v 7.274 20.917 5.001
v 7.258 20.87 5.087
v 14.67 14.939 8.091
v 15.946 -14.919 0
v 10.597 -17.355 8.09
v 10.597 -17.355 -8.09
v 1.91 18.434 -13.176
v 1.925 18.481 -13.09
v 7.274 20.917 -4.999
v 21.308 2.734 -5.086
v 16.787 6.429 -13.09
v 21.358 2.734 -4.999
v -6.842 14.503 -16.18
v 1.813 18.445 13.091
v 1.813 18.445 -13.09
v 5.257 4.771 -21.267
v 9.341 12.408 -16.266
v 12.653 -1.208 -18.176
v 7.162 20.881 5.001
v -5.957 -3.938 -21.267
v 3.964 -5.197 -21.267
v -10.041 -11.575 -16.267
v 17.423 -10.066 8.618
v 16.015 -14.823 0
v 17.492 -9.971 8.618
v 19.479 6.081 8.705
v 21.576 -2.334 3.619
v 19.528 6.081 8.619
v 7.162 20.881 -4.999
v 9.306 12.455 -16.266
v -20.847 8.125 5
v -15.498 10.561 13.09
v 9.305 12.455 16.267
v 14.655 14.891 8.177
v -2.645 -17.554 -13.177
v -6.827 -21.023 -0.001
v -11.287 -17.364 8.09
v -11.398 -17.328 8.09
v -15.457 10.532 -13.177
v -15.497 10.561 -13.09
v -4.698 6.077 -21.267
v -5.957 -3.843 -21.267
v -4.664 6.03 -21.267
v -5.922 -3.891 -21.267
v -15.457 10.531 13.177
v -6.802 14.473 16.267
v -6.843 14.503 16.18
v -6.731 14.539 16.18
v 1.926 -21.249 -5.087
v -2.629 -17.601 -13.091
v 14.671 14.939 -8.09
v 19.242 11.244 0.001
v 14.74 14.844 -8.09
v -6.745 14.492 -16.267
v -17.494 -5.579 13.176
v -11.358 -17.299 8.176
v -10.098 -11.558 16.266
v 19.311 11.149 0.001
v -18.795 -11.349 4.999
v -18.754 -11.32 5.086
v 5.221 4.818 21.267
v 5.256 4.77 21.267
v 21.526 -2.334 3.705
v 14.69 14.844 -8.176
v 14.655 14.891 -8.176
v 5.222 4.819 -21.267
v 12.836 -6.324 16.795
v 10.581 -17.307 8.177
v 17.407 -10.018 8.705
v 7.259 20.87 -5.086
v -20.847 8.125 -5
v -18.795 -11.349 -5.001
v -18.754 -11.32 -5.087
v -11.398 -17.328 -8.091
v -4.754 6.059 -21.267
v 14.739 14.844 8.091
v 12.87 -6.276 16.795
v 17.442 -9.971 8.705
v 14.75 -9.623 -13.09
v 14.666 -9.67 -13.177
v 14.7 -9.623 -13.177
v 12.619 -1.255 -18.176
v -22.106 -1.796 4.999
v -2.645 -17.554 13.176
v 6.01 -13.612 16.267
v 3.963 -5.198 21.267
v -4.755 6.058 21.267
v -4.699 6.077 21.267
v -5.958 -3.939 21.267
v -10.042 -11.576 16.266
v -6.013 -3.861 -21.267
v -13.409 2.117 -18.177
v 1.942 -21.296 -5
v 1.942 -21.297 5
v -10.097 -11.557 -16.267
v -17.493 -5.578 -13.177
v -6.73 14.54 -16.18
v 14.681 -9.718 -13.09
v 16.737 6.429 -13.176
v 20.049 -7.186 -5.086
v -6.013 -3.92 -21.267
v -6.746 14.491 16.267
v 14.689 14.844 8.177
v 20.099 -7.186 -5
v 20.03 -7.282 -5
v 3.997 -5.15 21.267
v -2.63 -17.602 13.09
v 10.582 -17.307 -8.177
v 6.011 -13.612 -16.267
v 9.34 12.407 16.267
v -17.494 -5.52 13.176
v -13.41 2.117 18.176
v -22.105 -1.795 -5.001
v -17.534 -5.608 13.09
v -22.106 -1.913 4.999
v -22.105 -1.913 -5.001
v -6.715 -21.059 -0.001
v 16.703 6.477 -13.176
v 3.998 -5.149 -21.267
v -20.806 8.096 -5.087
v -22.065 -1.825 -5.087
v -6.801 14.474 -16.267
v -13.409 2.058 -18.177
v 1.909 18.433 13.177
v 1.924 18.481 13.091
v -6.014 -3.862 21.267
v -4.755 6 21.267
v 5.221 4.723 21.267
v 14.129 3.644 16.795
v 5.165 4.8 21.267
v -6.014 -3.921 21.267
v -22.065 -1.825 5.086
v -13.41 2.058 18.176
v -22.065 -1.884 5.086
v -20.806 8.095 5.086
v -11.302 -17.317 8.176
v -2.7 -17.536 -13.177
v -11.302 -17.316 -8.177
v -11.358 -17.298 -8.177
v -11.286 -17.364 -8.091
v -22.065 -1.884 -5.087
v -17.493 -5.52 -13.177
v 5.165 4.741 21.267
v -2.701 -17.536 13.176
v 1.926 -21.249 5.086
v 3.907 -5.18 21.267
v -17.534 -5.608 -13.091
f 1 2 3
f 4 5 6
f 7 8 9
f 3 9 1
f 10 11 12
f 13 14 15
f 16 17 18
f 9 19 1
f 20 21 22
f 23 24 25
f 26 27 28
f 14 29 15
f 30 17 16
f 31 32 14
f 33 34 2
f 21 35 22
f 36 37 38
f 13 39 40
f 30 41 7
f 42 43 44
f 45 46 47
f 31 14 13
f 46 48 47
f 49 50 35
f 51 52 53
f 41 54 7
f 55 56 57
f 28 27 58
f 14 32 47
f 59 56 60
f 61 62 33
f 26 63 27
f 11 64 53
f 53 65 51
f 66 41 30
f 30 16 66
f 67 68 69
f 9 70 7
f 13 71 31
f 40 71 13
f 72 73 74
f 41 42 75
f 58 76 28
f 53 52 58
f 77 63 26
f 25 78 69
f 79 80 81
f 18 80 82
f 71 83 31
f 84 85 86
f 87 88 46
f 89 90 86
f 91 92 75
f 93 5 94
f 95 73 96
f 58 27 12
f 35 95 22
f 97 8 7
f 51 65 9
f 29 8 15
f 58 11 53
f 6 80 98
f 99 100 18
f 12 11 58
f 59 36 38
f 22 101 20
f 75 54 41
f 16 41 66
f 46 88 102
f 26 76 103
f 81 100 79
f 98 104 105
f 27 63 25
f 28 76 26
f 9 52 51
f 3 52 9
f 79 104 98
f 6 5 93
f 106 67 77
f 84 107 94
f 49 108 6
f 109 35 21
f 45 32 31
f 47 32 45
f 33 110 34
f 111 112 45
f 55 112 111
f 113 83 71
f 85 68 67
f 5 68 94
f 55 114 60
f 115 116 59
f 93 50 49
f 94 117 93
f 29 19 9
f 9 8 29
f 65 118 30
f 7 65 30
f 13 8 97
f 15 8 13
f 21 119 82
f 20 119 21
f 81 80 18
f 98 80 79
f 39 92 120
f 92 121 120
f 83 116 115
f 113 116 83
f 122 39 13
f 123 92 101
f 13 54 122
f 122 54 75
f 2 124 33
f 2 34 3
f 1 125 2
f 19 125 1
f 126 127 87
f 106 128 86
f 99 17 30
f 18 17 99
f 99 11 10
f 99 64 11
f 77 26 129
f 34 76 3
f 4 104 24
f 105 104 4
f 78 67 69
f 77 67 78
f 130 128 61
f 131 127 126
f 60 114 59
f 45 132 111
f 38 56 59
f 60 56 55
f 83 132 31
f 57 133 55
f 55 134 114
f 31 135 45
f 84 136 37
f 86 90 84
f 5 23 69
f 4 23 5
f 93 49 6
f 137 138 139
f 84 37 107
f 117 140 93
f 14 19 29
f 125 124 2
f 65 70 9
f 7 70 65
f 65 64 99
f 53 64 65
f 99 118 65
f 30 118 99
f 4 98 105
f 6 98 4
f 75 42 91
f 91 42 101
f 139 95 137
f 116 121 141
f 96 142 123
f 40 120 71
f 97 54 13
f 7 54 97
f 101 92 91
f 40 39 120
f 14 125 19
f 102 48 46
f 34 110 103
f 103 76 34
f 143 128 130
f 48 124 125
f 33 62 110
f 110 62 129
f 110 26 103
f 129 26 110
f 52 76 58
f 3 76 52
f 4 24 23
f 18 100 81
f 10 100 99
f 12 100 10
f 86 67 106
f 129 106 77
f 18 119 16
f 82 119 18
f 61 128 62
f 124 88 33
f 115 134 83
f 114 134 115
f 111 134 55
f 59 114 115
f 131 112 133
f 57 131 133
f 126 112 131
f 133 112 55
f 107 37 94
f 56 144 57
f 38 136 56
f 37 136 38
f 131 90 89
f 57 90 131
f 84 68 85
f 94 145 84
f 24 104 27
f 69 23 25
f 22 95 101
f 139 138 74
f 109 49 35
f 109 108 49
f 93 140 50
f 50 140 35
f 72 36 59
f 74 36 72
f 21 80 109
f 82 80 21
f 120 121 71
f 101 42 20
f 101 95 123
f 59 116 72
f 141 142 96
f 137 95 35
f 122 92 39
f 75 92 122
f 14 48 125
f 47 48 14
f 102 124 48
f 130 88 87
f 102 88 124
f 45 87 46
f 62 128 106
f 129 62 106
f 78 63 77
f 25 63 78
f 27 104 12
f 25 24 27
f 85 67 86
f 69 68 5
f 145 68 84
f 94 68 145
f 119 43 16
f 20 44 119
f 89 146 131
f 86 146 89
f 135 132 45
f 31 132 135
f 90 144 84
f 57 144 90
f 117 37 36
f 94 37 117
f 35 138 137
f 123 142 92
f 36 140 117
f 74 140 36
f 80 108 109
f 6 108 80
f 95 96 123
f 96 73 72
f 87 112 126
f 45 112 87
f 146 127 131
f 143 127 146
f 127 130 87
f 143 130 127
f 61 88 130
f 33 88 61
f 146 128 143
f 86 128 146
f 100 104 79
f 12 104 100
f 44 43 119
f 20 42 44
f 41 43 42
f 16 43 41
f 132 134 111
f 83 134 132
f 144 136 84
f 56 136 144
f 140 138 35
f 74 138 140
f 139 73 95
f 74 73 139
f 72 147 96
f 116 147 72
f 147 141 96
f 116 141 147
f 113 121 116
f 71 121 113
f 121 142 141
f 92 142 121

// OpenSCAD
// Auto-generated OpenSCAD file

    inner_points = 10*[[-0.6761707289295088, 1.4443912429777448, 1.6180428150467039], [1.2603258031723903, -0.12076505073214727, -1.8089878045154844], [-0.4714605992542724, 0.6029023975518815, 2.1180331007845328], [1.465035932847627, -0.9622538961580105, -1.3089975187776557], [-1.541683511369511, 1.050210284169558, 1.3089975187776557], [0.3948130207323881, -0.514946009540334, -2.1180331007845328], [-1.3369733816942744, 0.20872143874369475, 1.8089878045154844], [0.5995231504076245, -1.3564348549661973, -1.6180428150467039], [1.463934226922532, 1.4843529255560477, 0.8090793922871596], [1.921079046691184, 1.1148696448288868, 6.720509726276802e-05], [1.2820322182132897, -0.6276002421239685, 1.6708412238007613], [1.7391770379819418, -0.9970835228511294, 0.8618290366108644], [-2.202436754888304, -0.18542441139147592, -0.5000574908350913], [-1.7452919351196523, -0.5549076921186369, -1.3090696780249882], [-1.1317568977713777, -1.7269135363970753, 0.8089588950643893], [-0.674612078002726, -2.0963968171242366, -5.329212550742035e-05], [0.18942199934983583, 1.838629008812172, -1.308979864697917], [0.5994432045682823, -1.3564916619924376, 1.6180251609669651], [1.0565880243369343, -1.7259749427195985, 0.8090129737770685], [-0.6760907830901666, 1.4444480500039851, -1.6180251609669651], [-0.26606957787172014, -1.7506726208006245, 1.308979864697917], [0.1910752418969318, -2.1201559015277853, 0.49996767750802007], [0.5206899199254378, 0.4770998592723383, -2.118012576336173], [-0.5973374984473221, -0.3891434712607908, 2.118012576336173], [1.0566279972566053, -1.7259465392064783, -0.8090210142297662], [0.9289932050541309, 1.2407181409580579, 1.6180788946703704], [2.1258138809894067, 0.2733983537395316, -0.49994250870567225], [-2.202461459511291, -0.1854419657279841, 0.49994250870567225], [-1.005640783576015, -1.1527617529465104, -1.6180788946703704], [0.7243230482985655, 2.082235389897041, -0.4999453790742929], [1.9428501392747406, 0.6080804112866934, 0.8618622458659101], [-1.5416188338268535, 1.050256242019186, -1.3090364687699425], [-1.871368076395344, -1.1290310720560819, -0.500065876297063], [0.18935732180717835, 1.8385830509625434, 1.3090541228496813], [1.6687090341404256, 0.6429100379798126, -1.3089643095226098], [0.5205852694631093, 0.47702549790959015, 2.1180553992182594], [1.9999369817963566, -0.7186475150731406, -0.4999630331540315], [-2.0765845603182407, 0.8066039030846881, 0.4999630331540315], [-0.5972328479849937, -0.38906910989804266, -2.1180553992182594], [-1.7453566126623097, -0.5549536499682651, 1.3089643095226098], [-0.26600490032906265, -1.750626662950996, -1.3090541228496813], [0.7242983436755794, 2.082217835560533, 0.5000546204664706], [1.463974199842203, 1.4843813290691679, -0.8089545957196747], [1.4079091174063396, 0.3644456266887037, 1.6708617482491208], [2.1475849735729633, -0.2333908798026617, 0.3618525320629751], [-2.0765598556952543, 0.8066214574211964, -0.5000369663867321], [-1.336883999528631, 0.20878495092983085, -1.8090461825728774], [-1.8713927810183302, -1.1290486263925898, 0.4999341232437007], [-1.1317169248517065, -1.7268851328839554, -0.8090750929424451], [0.9290731508934732, 1.2407749479842982, -1.6179890813432987], [0.39470837027005956, -0.5150203709030822, 2.1180348747699], [1.591529046205335, -1.4823401581216085, 1.3471393857822367e-05], [-0.47135594879194387, 0.6029767589146297, -2.1180348747699], [-1.0057207294153574, -1.1528185599727507, 1.6179890813432987], [0.19109994651991802, -2.120138347191277, -0.5000323220327436]];

    outer_points = 10*[[0.02552547509395009, 2.1187272483769695, -0.7045645993136277], [-1.3615932646610294, -1.6727578892770014, 0.5779384076102413], [0.6827172728374509, 1.6727578892770014, -1.3121913529400864], [-0.7044014669175285, -2.1187272483769695, -0.029688346016217504], [0.7044014669175285, 2.1187272483769695, 0.029688346016217504], [-0.6827172728374509, -1.6727578892770014, 1.3121913529400864], [1.3615932646610294, 1.6727578892770014, -0.5779384076102413], [-0.02552547509395009, -2.1187272483769695, 0.7045645993136277], [-1.6027511659773777, 0.6705087936332265, -1.4027382632260594], [-1.9302054814233927, -0.22453943453325823, -1.099980372244143], [0.315133473353602, -0.29761058586558886, -2.1904763889740115], [-0.012320842092413131, -1.1926588140320735, -1.8877184979920947], [1.273013683679892, 0.6705087936332265, 1.7076071258706018], [0.945559368233877, -0.22453943453325823, 2.0103650168525182], [2.2084197579852707, -0.29761058586558886, -0.1427518448945897], [1.8809654425392557, -1.1926588140320735, 0.16000604608732683], [-1.8951197183831776, 0.4970541464314976, 1.0712265894806337], [1.2162437265595991, -0.4970541464314976, -1.8054795348104788], [0.8887894111135841, -1.3921023745979824, -1.5027216438285624], [-1.2162437265595991, 0.4970541464314976, 1.8054795348104788], [1.8951197183831776, -0.4970541464314976, -1.0712265894806337], [1.5676654029371626, -1.3921023745979824, -0.7684686984987172], [-1.4526456533333216, -1.0353759855059943, 1.3430879167013183], [1.4526456533333216, 1.0353759855059943, -1.3430879167013183], [0.26790481028680946, -2.2029389255707184, -0.24769957676650906], [-0.7994549424817525, 1.1716333414551139, -1.7245912807479955], [-1.6567414700822498, -1.1716333414551139, -0.9319608317951029], [1.6567414700822498, 1.1716333414551139, 0.9319608317951029], [0.7994549424817525, -1.1716333414551139, 1.7245912807479955], [-2.077531341052028, 0.8067661495823462, 0.13805753994051662], [-1.258091130637894, -0.16135322991646922, -1.8377268076908435], [-0.3002109203116041, 0.8067661495823462, 2.06035670715377], [1.7336395829106201, -0.16135322991646922, 1.3980439582719861], [-0.8905073311540451, 1.809015245226121, -0.9594417716569185], [-1.9501717554630091, -1.0874216642613652, 0.020303344285033886], [0.1728513347225853, 1.0874216642613652, -1.9426025114982872], [-0.8868130895863787, -1.809015245226121, -0.9628573955563348], [0.8868130895863787, 1.809015245226121, 0.9628573955563348], [-0.1728513347225853, -1.0874216642613652, 1.9426025114982872], [1.9501717554630091, 1.0874216642613652, -0.020303344285033886], [0.8905073311540451, -1.809015245226121, 0.9594417716569185], [-1.6938035546496701, 1.3078906974042335, -0.6375887541349824], [-2.2236357668041524, -0.14032775733950953, -0.1477161961640061], [-0.454794907142269, 0.33977131790541826, -2.15957982521278], [-0.9846271192967511, -1.1084471368383249, -1.6697072672418034], [0.503085303184021, 1.3078906974042335, 1.7385036896318335], [-0.02674690897046106, -0.14032775733950953, 2.22837624760281], [2.117367369312978, 0.33977131790541826, 0.6223976641964872], [1.5875351571584961, -1.1084471368383249, 1.1122702221674634], [-2.041224144135302, -0.4500397604903581, 0.7854528533761111], [0.9427797152184564, 0.4500397604903581, -1.9734990752595192], [0.0854931876179591, -1.8932269224198697, -1.1808686263066264], [-0.9427797152184564, -0.4500397604903581, 1.9734990752595192], [2.041224144135302, 0.4500397604903581, -0.7854528533761111], [1.1839376165348048, -1.8932269224198697, 0.00717759557678177]];

    // Convex hull for inner set (I)
    module inner_hull() {
        hull() {
            for (p = inner_points) {
                translate(p) sphere(r=0.1);
            }
        }
    }

    // Convex hull for outer set (O) minus inner hull (O \ I)
    module outer_minus_inner() {
        difference() {
            hull() {
                for (p = outer_points) {
                    translate(p) sphere(r=0.1);
                }
            }
            inner_hull(); // Subtract inner hull
        }
    }

    // Convex hull for outer set (O) minus all translated inner hulls
    module outer_minus_AllTranslationInner() {
        difference() {
            hull() {
                for (p = outer_points) {
                    translate(p) sphere(r=0.1);
                }
            }
            hull() {
                translate([0,0,50]) inner_hull();
                translate([0,0,-50]) inner_hull();
            }; // Subtract translated inner hulls
        }
    }

    // Difference between outer_minus_inner and outer_minus_AllTranslationInner
    module outer_minus_inner_diff() {
        difference() {
            // Outer minus inner
            difference() {
                hull() {
                    for (p = outer_points) {
                        translate(p) sphere(r=0.1);
                    }
                }
                inner_hull();
            }

            // Subtract Outer minus AllTranslationInner
            difference() {
                hull() {
                    for (p = outer_points) {
                        translate(p) sphere(r=0.1);
                    }
                }
                hull() {
                    translate([0,0,50]) inner_hull();
                    translate([0,0,-50]) inner_hull();
                };
            }
        }
    }

    // Rendering all with colors applied
    color([1, 0, 0, 0.5]) inner_hull(); // Transparent red
    
